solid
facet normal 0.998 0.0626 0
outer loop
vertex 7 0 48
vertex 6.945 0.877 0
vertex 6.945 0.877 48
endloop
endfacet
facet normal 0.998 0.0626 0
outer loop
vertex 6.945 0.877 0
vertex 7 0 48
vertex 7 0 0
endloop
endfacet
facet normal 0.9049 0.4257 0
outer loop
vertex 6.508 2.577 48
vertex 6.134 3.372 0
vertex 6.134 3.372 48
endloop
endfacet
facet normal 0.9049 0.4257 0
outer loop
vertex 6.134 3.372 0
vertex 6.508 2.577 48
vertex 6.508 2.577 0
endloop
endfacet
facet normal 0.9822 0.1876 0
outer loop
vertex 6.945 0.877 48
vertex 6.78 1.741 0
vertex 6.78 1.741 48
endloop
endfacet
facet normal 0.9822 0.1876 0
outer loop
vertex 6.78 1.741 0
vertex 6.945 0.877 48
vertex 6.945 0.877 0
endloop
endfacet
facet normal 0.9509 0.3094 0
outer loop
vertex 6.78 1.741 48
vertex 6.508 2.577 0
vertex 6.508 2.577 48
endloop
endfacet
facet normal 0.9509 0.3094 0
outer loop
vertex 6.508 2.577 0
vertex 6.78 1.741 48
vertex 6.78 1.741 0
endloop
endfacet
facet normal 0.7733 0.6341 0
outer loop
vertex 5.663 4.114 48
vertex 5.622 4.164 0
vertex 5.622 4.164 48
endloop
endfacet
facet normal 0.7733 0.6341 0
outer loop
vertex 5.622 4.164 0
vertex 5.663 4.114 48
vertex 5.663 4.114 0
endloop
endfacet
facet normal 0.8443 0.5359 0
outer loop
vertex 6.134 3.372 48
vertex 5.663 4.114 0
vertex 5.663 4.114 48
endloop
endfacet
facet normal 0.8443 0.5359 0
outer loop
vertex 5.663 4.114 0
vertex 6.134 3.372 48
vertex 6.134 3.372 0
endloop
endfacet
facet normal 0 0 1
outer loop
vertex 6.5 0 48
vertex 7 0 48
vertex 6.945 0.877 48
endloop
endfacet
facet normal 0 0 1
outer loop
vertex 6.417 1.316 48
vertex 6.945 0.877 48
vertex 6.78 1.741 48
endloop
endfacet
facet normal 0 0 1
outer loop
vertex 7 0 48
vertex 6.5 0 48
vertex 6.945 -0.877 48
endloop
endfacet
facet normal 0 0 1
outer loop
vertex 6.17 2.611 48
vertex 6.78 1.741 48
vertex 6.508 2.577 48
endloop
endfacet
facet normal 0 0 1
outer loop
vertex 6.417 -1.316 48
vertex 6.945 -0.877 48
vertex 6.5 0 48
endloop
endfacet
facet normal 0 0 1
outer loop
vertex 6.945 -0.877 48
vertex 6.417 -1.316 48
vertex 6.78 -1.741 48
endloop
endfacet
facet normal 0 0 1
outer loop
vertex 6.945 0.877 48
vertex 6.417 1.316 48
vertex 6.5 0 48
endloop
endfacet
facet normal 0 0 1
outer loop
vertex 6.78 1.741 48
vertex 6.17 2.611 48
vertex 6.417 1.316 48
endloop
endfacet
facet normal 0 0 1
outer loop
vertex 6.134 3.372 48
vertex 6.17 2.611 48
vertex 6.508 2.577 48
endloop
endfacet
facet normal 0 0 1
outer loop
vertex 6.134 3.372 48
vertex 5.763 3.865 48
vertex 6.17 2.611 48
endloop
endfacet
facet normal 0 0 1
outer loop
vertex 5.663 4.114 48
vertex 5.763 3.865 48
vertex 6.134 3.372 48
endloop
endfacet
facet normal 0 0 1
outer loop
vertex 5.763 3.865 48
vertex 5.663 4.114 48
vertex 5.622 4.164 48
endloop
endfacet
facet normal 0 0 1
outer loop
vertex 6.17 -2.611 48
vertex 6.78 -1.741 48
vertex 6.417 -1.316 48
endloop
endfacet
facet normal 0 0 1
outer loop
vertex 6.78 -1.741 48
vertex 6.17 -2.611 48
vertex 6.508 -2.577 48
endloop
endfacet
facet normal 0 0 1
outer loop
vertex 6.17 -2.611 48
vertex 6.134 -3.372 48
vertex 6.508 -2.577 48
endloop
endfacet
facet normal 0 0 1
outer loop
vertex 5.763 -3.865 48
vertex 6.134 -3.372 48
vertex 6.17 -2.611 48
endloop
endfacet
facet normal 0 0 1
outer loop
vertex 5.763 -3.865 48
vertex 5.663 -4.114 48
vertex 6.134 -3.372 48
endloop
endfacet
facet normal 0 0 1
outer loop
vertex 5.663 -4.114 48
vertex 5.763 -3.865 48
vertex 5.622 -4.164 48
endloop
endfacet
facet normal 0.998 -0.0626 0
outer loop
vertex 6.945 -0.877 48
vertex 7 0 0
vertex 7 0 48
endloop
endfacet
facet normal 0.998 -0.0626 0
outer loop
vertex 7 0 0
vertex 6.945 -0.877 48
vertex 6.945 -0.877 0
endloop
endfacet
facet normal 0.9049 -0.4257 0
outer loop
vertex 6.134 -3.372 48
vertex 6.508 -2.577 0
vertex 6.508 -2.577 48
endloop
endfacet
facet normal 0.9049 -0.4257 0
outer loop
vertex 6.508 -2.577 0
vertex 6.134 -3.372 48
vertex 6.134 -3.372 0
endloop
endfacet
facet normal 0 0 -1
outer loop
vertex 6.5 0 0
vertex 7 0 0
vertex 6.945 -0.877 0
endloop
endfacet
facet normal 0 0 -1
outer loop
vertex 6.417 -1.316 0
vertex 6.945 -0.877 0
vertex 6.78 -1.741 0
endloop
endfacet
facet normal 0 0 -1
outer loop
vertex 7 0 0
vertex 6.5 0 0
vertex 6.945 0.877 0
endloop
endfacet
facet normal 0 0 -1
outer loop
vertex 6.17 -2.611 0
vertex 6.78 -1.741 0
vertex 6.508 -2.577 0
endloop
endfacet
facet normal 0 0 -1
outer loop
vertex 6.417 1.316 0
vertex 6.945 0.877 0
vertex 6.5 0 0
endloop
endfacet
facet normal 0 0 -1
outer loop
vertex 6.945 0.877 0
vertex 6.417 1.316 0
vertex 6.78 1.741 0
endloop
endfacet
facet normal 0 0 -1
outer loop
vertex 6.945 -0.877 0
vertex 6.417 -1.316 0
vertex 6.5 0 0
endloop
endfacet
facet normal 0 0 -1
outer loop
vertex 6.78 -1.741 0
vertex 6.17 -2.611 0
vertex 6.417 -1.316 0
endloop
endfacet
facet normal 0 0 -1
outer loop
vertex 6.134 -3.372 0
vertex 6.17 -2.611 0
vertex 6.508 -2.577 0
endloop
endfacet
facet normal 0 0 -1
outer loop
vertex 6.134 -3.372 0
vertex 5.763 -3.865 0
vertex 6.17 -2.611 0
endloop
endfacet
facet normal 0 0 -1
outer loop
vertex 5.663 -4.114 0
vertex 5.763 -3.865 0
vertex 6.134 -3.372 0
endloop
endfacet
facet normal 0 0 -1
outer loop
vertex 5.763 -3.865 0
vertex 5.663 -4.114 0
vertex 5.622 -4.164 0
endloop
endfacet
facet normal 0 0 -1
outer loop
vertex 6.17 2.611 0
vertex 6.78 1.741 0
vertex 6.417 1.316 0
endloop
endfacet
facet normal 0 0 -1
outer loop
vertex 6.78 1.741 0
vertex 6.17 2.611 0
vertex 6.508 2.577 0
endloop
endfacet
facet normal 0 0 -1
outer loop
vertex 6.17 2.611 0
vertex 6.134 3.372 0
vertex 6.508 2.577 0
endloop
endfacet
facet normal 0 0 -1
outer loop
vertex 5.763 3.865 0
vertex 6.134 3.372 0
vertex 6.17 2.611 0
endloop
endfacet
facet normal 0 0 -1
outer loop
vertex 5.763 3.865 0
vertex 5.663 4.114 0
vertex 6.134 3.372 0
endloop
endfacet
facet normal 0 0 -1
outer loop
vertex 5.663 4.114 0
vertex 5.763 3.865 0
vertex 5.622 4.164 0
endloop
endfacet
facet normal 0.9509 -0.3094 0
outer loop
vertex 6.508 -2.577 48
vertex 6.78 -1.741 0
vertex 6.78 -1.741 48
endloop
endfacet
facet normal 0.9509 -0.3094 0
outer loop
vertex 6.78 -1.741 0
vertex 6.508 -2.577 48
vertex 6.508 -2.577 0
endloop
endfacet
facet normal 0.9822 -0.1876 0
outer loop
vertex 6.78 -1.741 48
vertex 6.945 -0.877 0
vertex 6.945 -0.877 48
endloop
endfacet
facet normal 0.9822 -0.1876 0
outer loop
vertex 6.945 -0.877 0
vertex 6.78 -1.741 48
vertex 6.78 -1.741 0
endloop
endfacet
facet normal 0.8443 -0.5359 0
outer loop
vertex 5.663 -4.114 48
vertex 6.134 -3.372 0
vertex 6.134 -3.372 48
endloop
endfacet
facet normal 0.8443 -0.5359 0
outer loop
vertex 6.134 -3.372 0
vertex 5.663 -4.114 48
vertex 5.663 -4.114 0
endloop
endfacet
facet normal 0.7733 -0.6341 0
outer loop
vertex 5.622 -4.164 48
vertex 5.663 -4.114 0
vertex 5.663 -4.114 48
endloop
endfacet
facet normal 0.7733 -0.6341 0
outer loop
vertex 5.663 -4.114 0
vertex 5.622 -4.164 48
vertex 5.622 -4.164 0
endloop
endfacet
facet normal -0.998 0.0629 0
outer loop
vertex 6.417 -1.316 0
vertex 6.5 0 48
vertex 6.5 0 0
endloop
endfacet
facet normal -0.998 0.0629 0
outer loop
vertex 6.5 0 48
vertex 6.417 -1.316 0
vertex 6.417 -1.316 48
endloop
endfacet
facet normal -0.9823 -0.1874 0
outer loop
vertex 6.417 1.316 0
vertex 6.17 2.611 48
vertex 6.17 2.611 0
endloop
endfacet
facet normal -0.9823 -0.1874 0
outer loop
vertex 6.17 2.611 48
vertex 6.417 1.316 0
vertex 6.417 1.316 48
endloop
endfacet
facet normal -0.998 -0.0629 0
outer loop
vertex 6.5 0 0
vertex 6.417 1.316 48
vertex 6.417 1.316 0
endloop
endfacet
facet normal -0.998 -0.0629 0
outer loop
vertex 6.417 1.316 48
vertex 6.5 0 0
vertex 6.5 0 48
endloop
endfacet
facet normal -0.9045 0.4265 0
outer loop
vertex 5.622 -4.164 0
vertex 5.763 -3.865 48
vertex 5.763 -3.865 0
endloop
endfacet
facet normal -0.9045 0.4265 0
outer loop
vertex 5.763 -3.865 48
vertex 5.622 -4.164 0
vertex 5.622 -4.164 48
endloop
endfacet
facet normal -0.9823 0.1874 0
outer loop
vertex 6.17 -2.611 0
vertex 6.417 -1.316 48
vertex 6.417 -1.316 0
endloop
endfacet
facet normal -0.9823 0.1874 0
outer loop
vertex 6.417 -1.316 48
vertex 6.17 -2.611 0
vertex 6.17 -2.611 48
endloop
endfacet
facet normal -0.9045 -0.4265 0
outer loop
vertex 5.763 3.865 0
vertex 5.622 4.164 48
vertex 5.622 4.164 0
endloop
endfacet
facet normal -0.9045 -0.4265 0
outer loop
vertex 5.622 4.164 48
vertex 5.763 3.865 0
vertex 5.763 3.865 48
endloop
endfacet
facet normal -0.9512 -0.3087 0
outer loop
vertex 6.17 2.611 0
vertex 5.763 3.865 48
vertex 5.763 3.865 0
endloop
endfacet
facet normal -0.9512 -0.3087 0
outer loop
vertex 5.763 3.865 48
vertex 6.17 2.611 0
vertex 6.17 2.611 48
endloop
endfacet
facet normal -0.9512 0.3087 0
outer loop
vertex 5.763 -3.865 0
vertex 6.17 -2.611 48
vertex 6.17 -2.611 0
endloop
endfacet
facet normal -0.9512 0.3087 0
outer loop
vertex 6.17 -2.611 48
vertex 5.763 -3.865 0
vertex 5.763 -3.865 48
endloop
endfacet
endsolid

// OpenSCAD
$fn = 50;


difference() {
	union() {
		cylinder(h = 48, r = 7.0000000000);
		translate(v = [-7.0000000000, 0, 0]) {
			cylinder(h = 48, r = 7.0000000000);
		}
	}
	union() {
		cylinder(h = 48, r = 3.2500000000);
		cylinder(h = 48, r = 1.8000000000);
		cylinder(h = 48, r = 1.8000000000);
		cylinder(h = 48, r = 1.8000000000);
		translate(v = [-11.5000000000, 0, 0]) {
			hull() {
				translate(v = [-3.7500000000, 0.0000000000, 0]) {
					cylinder(h = 48, r = 7.5000000000);
				}
				translate(v = [3.7500000000, 0.0000000000, 0]) {
					cylinder(h = 48, r = 7.5000000000);
				}
				translate(v = [-3.7500000000, -0.0000000000, 0]) {
					cylinder(h = 48, r = 7.5000000000);
				}
				translate(v = [3.7500000000, -0.0000000000, 0]) {
					cylinder(h = 48, r = 7.5000000000);
				}
			}
		}
		translate(v = [-4.0000000000, 0, 0.0000000000]) {
			cylinder(h = 48, r = 10.5000000000);
		}
	}
}
